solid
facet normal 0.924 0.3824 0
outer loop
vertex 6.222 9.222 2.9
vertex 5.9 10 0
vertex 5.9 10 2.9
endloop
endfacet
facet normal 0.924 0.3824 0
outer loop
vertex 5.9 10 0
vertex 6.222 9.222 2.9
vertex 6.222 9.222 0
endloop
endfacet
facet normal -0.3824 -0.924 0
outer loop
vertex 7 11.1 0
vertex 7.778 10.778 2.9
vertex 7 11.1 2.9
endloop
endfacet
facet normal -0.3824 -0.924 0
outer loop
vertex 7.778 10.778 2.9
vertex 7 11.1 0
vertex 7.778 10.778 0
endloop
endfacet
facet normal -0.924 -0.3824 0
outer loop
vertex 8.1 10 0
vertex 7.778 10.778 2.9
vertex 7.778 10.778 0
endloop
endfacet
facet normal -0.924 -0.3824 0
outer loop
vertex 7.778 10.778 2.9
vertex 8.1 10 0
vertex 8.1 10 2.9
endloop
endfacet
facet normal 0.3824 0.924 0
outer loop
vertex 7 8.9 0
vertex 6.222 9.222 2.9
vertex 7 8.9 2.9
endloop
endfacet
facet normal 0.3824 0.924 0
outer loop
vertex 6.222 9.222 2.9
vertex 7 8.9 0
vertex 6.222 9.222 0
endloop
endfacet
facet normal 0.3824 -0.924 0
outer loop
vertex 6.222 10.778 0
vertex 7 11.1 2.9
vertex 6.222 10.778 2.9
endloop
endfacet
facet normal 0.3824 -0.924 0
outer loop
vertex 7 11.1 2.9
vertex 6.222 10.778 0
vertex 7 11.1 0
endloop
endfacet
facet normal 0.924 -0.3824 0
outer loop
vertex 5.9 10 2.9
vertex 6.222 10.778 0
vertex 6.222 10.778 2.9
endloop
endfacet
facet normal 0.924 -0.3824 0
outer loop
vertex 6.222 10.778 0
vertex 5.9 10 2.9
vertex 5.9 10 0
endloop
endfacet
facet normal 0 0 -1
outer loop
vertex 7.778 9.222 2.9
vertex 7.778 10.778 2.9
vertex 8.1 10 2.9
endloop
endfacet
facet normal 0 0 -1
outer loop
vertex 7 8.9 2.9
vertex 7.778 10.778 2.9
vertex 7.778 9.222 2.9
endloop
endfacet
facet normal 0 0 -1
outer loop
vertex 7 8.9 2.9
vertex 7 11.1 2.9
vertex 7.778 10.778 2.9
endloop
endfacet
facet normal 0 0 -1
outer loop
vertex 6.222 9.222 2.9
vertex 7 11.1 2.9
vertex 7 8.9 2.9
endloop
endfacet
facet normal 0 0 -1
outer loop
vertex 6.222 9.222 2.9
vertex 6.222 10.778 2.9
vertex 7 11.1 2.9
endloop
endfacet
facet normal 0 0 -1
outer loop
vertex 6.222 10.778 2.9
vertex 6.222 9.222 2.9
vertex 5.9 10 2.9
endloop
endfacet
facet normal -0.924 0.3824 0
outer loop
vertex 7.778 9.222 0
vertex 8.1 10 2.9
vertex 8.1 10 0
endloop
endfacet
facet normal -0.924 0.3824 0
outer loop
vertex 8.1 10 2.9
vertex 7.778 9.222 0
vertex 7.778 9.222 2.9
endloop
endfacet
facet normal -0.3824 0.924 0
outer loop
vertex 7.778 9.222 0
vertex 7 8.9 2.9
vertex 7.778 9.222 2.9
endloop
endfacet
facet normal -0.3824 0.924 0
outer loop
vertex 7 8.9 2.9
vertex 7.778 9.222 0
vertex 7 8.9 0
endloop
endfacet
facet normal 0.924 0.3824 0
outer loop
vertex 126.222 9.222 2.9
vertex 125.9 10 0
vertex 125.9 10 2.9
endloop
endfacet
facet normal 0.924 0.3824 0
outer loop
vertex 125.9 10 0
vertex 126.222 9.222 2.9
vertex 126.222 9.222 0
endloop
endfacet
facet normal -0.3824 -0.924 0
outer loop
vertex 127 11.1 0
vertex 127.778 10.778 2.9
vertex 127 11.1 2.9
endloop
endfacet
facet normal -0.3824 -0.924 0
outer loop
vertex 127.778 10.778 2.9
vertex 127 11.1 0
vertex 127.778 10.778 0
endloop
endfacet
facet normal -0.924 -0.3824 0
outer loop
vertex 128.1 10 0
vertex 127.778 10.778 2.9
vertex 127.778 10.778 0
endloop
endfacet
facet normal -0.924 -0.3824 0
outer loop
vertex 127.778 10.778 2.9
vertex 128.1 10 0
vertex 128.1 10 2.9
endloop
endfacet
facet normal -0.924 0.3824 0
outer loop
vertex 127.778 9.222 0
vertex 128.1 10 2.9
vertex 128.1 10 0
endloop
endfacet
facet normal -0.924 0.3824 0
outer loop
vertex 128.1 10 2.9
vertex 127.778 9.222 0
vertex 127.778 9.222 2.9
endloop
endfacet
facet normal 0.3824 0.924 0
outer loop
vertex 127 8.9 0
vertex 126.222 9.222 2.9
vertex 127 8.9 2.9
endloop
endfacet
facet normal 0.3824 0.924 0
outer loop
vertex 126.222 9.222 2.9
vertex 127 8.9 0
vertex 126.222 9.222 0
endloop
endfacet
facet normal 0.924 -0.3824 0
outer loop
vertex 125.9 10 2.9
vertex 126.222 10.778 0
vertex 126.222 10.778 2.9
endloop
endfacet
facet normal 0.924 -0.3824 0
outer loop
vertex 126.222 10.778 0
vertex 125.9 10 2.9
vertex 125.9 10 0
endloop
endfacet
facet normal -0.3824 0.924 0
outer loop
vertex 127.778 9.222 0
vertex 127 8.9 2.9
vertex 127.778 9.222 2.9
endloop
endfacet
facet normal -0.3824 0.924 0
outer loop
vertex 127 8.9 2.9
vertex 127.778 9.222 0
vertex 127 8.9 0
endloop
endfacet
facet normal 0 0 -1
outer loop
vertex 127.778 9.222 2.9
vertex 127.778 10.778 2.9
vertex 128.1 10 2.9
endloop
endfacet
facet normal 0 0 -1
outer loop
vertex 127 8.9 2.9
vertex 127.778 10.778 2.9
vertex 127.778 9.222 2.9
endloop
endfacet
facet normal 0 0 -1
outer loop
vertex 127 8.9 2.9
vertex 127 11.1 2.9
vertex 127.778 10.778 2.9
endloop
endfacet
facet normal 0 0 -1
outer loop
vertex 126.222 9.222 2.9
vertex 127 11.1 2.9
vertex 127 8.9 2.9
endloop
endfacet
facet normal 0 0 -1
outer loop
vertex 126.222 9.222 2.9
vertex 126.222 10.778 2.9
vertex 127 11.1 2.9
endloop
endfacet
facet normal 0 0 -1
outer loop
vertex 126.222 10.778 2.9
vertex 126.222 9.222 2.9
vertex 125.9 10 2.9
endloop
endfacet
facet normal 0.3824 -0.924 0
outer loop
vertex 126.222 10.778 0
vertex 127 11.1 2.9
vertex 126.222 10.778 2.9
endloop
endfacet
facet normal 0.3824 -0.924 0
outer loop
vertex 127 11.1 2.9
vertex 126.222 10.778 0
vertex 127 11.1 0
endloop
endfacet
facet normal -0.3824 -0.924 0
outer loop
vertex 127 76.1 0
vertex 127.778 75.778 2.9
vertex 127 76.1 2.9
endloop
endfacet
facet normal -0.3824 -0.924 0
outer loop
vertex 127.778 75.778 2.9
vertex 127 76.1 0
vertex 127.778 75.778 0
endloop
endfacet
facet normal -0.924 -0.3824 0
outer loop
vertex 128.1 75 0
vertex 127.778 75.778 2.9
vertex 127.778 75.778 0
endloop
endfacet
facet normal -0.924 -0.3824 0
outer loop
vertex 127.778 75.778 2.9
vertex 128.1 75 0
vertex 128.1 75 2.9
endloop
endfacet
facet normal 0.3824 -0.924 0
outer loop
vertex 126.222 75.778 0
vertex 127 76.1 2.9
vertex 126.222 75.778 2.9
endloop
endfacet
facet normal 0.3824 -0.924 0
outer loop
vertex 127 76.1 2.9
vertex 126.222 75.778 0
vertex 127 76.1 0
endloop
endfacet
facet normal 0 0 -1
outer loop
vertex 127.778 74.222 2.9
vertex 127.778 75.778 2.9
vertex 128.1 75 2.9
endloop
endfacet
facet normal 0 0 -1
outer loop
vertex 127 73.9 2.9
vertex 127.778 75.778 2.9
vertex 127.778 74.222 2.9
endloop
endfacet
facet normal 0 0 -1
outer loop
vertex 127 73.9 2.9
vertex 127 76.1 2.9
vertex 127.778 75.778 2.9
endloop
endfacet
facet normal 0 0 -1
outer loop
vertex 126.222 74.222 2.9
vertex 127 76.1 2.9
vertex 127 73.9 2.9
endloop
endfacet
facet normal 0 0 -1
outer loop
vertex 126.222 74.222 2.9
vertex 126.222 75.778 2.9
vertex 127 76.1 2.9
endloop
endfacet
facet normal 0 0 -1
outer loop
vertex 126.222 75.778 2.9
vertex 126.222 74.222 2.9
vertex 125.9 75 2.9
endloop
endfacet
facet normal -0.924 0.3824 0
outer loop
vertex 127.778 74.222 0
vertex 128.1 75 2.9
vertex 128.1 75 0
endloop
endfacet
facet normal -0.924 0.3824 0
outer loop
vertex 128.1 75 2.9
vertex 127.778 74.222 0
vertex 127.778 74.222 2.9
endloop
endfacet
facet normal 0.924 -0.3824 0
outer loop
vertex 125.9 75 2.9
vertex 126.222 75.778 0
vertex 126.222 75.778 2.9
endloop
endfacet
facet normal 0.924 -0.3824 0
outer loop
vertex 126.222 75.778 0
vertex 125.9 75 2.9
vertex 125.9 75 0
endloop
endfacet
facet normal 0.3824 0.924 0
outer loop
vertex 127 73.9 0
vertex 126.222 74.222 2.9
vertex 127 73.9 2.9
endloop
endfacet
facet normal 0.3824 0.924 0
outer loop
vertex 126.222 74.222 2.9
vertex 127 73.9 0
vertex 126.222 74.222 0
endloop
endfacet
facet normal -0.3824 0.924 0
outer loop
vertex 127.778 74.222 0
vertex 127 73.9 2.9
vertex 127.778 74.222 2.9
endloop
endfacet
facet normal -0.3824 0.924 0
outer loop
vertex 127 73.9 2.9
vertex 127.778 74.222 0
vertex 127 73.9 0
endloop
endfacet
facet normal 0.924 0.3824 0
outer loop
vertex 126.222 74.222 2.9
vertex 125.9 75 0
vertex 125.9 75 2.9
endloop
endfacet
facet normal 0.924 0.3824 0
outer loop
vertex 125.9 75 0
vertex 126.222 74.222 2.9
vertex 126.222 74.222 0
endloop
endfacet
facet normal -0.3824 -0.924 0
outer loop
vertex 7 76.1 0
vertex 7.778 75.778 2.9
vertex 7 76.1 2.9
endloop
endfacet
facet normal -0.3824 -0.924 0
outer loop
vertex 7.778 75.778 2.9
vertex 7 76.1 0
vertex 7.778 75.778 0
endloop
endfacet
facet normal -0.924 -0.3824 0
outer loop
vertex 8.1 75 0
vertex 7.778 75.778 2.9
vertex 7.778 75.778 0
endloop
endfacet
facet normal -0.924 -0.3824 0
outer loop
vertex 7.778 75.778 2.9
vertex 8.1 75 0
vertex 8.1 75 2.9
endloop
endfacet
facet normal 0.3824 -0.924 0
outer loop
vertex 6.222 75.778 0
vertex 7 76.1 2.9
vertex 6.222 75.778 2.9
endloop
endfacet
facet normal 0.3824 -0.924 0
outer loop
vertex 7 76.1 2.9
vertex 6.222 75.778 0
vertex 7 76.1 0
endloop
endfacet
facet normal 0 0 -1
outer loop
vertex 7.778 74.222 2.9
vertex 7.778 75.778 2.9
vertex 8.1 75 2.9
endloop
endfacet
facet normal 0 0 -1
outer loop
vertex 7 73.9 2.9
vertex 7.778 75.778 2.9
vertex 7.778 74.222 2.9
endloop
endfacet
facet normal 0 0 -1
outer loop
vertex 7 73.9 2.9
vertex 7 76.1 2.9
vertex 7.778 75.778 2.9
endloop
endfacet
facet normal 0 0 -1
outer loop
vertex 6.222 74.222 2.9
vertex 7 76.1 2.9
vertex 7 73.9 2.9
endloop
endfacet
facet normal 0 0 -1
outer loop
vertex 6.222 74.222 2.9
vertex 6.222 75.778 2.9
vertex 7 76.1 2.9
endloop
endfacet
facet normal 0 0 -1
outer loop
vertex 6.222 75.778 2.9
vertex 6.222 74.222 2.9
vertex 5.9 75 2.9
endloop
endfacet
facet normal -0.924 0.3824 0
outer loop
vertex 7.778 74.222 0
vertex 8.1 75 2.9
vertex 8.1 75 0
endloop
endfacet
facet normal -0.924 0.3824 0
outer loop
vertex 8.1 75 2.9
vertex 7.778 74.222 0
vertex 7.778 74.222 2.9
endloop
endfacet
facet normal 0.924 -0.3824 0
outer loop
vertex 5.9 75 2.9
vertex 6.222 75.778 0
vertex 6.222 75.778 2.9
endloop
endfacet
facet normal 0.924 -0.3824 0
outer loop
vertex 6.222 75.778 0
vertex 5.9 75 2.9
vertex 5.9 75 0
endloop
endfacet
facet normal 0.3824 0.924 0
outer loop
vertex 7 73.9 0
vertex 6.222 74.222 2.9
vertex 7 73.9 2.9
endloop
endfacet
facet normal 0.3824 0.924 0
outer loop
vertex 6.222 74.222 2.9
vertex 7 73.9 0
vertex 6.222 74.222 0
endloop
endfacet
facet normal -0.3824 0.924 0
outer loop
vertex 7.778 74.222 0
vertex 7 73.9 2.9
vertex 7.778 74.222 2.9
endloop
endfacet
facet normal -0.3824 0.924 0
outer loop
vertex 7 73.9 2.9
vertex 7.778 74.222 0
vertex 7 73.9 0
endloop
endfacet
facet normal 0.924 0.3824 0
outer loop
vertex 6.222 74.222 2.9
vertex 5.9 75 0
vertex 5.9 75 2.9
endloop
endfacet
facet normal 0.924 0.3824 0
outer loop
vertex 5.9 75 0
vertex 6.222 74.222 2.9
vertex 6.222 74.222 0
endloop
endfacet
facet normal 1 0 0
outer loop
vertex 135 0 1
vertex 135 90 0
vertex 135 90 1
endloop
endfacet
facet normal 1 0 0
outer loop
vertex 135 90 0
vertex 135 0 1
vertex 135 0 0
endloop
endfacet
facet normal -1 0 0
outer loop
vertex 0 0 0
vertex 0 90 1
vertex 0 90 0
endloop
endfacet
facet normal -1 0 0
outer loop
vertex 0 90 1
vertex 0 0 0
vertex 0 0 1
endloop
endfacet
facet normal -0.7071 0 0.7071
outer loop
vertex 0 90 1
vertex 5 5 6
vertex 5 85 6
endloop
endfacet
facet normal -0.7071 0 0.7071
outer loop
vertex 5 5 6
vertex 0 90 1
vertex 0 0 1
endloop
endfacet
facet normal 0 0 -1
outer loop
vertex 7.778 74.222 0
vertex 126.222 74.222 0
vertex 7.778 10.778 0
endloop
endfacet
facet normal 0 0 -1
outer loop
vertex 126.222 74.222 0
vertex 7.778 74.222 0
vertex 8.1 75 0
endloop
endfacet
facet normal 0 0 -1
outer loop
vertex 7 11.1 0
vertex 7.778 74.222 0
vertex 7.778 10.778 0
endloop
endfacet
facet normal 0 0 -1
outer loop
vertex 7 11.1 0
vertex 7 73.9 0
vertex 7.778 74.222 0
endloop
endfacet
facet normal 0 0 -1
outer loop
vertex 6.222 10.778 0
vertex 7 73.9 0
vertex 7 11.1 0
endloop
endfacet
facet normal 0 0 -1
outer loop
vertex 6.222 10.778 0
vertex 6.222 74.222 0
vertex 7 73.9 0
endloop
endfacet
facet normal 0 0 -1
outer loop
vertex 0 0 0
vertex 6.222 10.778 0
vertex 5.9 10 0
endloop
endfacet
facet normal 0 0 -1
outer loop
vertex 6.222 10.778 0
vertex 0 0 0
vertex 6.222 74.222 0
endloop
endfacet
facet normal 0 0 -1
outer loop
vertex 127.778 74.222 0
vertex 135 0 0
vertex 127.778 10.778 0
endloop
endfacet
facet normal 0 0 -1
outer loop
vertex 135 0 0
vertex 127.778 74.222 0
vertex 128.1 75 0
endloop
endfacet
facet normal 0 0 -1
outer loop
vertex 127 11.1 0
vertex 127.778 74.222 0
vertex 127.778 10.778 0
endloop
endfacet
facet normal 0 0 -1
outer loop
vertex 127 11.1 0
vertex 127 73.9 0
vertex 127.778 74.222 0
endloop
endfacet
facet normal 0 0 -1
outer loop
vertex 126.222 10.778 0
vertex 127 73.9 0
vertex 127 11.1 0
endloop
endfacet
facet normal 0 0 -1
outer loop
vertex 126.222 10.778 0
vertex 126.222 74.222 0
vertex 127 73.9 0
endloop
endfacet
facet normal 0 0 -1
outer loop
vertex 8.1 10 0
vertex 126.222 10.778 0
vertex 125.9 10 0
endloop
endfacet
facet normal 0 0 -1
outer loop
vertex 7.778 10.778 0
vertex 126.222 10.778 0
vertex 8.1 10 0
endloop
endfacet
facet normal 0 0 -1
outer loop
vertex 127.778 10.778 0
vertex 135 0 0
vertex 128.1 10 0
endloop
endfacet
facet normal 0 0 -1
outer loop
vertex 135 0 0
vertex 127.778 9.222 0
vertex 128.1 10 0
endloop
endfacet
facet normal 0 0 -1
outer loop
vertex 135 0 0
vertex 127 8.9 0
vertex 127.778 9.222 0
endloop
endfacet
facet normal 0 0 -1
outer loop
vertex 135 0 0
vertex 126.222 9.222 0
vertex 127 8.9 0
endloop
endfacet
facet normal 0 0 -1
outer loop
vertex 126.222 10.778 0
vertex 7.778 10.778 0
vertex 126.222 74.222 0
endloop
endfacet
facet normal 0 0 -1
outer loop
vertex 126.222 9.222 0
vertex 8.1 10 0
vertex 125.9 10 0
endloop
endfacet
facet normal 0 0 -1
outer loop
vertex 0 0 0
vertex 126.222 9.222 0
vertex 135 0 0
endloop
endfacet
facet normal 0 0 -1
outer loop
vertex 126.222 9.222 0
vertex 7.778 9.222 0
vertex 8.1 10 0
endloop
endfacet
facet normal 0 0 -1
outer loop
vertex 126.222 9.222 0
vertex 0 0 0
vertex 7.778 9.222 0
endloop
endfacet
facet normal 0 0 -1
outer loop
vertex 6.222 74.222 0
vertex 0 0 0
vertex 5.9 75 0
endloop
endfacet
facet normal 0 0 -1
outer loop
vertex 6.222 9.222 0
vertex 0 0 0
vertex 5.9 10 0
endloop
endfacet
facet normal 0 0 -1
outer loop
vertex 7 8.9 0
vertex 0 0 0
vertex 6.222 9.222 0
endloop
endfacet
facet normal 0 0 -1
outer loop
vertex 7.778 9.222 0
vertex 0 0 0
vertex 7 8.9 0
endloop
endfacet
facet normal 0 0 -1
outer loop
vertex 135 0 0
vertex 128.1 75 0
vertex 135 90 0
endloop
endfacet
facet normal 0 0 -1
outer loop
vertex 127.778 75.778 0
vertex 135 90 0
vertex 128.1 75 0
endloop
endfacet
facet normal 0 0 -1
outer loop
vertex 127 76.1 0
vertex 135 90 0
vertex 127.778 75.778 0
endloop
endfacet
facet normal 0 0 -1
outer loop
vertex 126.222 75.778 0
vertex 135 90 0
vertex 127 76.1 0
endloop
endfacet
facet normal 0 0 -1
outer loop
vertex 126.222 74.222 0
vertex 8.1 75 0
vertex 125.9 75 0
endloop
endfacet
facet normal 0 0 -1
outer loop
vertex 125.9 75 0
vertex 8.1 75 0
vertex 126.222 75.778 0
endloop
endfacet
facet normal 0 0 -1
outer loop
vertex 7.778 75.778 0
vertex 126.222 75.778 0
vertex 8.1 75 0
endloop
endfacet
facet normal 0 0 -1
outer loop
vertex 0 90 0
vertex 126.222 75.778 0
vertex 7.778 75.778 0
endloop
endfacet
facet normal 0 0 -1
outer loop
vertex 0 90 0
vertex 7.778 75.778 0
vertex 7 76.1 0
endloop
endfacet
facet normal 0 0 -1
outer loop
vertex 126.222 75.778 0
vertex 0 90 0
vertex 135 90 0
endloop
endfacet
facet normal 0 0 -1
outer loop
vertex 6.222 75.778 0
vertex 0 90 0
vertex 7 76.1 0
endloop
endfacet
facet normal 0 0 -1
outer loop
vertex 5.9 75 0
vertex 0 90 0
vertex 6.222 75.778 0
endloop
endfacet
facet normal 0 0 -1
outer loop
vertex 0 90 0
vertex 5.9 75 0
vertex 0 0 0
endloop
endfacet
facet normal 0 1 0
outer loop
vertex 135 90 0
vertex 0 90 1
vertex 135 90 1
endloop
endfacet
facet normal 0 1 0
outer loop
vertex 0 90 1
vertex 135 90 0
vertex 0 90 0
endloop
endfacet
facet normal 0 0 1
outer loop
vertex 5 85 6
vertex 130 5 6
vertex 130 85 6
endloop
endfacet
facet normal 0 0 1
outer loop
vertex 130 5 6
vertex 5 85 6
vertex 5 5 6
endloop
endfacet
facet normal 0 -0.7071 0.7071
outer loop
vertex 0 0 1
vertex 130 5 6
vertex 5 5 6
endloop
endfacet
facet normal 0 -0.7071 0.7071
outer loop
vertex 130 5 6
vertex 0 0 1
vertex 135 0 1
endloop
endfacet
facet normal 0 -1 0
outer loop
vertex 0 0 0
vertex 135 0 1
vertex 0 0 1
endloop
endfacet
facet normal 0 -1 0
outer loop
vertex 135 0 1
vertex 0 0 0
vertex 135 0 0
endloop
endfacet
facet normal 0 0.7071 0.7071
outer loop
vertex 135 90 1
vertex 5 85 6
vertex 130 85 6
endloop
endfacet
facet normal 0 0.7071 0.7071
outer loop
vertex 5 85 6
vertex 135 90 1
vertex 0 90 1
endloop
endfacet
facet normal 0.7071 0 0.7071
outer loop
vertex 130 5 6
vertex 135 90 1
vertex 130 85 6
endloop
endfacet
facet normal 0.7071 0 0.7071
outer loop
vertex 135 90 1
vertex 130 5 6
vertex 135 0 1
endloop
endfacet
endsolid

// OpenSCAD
difference() {
    hull () {
        cube([135,90,1]);
        translate([5,5,5]) 
        cube([125,80,1]);
    }
    cylinderHoles();
}

module cylinderHoles () {
    translate([7,10,-6.1])
    union() {
        translate([0,0,6])
        cylinderHole();
        translate([120,0,6])
        cylinderHole();
        translate([120,65,6])
        cylinderHole();
        translate([0,65,6])
        cylinderHole();
    }
}

module cylinderHole () {
    cylinder(h=3, r=1.1, $fn=8);
}
